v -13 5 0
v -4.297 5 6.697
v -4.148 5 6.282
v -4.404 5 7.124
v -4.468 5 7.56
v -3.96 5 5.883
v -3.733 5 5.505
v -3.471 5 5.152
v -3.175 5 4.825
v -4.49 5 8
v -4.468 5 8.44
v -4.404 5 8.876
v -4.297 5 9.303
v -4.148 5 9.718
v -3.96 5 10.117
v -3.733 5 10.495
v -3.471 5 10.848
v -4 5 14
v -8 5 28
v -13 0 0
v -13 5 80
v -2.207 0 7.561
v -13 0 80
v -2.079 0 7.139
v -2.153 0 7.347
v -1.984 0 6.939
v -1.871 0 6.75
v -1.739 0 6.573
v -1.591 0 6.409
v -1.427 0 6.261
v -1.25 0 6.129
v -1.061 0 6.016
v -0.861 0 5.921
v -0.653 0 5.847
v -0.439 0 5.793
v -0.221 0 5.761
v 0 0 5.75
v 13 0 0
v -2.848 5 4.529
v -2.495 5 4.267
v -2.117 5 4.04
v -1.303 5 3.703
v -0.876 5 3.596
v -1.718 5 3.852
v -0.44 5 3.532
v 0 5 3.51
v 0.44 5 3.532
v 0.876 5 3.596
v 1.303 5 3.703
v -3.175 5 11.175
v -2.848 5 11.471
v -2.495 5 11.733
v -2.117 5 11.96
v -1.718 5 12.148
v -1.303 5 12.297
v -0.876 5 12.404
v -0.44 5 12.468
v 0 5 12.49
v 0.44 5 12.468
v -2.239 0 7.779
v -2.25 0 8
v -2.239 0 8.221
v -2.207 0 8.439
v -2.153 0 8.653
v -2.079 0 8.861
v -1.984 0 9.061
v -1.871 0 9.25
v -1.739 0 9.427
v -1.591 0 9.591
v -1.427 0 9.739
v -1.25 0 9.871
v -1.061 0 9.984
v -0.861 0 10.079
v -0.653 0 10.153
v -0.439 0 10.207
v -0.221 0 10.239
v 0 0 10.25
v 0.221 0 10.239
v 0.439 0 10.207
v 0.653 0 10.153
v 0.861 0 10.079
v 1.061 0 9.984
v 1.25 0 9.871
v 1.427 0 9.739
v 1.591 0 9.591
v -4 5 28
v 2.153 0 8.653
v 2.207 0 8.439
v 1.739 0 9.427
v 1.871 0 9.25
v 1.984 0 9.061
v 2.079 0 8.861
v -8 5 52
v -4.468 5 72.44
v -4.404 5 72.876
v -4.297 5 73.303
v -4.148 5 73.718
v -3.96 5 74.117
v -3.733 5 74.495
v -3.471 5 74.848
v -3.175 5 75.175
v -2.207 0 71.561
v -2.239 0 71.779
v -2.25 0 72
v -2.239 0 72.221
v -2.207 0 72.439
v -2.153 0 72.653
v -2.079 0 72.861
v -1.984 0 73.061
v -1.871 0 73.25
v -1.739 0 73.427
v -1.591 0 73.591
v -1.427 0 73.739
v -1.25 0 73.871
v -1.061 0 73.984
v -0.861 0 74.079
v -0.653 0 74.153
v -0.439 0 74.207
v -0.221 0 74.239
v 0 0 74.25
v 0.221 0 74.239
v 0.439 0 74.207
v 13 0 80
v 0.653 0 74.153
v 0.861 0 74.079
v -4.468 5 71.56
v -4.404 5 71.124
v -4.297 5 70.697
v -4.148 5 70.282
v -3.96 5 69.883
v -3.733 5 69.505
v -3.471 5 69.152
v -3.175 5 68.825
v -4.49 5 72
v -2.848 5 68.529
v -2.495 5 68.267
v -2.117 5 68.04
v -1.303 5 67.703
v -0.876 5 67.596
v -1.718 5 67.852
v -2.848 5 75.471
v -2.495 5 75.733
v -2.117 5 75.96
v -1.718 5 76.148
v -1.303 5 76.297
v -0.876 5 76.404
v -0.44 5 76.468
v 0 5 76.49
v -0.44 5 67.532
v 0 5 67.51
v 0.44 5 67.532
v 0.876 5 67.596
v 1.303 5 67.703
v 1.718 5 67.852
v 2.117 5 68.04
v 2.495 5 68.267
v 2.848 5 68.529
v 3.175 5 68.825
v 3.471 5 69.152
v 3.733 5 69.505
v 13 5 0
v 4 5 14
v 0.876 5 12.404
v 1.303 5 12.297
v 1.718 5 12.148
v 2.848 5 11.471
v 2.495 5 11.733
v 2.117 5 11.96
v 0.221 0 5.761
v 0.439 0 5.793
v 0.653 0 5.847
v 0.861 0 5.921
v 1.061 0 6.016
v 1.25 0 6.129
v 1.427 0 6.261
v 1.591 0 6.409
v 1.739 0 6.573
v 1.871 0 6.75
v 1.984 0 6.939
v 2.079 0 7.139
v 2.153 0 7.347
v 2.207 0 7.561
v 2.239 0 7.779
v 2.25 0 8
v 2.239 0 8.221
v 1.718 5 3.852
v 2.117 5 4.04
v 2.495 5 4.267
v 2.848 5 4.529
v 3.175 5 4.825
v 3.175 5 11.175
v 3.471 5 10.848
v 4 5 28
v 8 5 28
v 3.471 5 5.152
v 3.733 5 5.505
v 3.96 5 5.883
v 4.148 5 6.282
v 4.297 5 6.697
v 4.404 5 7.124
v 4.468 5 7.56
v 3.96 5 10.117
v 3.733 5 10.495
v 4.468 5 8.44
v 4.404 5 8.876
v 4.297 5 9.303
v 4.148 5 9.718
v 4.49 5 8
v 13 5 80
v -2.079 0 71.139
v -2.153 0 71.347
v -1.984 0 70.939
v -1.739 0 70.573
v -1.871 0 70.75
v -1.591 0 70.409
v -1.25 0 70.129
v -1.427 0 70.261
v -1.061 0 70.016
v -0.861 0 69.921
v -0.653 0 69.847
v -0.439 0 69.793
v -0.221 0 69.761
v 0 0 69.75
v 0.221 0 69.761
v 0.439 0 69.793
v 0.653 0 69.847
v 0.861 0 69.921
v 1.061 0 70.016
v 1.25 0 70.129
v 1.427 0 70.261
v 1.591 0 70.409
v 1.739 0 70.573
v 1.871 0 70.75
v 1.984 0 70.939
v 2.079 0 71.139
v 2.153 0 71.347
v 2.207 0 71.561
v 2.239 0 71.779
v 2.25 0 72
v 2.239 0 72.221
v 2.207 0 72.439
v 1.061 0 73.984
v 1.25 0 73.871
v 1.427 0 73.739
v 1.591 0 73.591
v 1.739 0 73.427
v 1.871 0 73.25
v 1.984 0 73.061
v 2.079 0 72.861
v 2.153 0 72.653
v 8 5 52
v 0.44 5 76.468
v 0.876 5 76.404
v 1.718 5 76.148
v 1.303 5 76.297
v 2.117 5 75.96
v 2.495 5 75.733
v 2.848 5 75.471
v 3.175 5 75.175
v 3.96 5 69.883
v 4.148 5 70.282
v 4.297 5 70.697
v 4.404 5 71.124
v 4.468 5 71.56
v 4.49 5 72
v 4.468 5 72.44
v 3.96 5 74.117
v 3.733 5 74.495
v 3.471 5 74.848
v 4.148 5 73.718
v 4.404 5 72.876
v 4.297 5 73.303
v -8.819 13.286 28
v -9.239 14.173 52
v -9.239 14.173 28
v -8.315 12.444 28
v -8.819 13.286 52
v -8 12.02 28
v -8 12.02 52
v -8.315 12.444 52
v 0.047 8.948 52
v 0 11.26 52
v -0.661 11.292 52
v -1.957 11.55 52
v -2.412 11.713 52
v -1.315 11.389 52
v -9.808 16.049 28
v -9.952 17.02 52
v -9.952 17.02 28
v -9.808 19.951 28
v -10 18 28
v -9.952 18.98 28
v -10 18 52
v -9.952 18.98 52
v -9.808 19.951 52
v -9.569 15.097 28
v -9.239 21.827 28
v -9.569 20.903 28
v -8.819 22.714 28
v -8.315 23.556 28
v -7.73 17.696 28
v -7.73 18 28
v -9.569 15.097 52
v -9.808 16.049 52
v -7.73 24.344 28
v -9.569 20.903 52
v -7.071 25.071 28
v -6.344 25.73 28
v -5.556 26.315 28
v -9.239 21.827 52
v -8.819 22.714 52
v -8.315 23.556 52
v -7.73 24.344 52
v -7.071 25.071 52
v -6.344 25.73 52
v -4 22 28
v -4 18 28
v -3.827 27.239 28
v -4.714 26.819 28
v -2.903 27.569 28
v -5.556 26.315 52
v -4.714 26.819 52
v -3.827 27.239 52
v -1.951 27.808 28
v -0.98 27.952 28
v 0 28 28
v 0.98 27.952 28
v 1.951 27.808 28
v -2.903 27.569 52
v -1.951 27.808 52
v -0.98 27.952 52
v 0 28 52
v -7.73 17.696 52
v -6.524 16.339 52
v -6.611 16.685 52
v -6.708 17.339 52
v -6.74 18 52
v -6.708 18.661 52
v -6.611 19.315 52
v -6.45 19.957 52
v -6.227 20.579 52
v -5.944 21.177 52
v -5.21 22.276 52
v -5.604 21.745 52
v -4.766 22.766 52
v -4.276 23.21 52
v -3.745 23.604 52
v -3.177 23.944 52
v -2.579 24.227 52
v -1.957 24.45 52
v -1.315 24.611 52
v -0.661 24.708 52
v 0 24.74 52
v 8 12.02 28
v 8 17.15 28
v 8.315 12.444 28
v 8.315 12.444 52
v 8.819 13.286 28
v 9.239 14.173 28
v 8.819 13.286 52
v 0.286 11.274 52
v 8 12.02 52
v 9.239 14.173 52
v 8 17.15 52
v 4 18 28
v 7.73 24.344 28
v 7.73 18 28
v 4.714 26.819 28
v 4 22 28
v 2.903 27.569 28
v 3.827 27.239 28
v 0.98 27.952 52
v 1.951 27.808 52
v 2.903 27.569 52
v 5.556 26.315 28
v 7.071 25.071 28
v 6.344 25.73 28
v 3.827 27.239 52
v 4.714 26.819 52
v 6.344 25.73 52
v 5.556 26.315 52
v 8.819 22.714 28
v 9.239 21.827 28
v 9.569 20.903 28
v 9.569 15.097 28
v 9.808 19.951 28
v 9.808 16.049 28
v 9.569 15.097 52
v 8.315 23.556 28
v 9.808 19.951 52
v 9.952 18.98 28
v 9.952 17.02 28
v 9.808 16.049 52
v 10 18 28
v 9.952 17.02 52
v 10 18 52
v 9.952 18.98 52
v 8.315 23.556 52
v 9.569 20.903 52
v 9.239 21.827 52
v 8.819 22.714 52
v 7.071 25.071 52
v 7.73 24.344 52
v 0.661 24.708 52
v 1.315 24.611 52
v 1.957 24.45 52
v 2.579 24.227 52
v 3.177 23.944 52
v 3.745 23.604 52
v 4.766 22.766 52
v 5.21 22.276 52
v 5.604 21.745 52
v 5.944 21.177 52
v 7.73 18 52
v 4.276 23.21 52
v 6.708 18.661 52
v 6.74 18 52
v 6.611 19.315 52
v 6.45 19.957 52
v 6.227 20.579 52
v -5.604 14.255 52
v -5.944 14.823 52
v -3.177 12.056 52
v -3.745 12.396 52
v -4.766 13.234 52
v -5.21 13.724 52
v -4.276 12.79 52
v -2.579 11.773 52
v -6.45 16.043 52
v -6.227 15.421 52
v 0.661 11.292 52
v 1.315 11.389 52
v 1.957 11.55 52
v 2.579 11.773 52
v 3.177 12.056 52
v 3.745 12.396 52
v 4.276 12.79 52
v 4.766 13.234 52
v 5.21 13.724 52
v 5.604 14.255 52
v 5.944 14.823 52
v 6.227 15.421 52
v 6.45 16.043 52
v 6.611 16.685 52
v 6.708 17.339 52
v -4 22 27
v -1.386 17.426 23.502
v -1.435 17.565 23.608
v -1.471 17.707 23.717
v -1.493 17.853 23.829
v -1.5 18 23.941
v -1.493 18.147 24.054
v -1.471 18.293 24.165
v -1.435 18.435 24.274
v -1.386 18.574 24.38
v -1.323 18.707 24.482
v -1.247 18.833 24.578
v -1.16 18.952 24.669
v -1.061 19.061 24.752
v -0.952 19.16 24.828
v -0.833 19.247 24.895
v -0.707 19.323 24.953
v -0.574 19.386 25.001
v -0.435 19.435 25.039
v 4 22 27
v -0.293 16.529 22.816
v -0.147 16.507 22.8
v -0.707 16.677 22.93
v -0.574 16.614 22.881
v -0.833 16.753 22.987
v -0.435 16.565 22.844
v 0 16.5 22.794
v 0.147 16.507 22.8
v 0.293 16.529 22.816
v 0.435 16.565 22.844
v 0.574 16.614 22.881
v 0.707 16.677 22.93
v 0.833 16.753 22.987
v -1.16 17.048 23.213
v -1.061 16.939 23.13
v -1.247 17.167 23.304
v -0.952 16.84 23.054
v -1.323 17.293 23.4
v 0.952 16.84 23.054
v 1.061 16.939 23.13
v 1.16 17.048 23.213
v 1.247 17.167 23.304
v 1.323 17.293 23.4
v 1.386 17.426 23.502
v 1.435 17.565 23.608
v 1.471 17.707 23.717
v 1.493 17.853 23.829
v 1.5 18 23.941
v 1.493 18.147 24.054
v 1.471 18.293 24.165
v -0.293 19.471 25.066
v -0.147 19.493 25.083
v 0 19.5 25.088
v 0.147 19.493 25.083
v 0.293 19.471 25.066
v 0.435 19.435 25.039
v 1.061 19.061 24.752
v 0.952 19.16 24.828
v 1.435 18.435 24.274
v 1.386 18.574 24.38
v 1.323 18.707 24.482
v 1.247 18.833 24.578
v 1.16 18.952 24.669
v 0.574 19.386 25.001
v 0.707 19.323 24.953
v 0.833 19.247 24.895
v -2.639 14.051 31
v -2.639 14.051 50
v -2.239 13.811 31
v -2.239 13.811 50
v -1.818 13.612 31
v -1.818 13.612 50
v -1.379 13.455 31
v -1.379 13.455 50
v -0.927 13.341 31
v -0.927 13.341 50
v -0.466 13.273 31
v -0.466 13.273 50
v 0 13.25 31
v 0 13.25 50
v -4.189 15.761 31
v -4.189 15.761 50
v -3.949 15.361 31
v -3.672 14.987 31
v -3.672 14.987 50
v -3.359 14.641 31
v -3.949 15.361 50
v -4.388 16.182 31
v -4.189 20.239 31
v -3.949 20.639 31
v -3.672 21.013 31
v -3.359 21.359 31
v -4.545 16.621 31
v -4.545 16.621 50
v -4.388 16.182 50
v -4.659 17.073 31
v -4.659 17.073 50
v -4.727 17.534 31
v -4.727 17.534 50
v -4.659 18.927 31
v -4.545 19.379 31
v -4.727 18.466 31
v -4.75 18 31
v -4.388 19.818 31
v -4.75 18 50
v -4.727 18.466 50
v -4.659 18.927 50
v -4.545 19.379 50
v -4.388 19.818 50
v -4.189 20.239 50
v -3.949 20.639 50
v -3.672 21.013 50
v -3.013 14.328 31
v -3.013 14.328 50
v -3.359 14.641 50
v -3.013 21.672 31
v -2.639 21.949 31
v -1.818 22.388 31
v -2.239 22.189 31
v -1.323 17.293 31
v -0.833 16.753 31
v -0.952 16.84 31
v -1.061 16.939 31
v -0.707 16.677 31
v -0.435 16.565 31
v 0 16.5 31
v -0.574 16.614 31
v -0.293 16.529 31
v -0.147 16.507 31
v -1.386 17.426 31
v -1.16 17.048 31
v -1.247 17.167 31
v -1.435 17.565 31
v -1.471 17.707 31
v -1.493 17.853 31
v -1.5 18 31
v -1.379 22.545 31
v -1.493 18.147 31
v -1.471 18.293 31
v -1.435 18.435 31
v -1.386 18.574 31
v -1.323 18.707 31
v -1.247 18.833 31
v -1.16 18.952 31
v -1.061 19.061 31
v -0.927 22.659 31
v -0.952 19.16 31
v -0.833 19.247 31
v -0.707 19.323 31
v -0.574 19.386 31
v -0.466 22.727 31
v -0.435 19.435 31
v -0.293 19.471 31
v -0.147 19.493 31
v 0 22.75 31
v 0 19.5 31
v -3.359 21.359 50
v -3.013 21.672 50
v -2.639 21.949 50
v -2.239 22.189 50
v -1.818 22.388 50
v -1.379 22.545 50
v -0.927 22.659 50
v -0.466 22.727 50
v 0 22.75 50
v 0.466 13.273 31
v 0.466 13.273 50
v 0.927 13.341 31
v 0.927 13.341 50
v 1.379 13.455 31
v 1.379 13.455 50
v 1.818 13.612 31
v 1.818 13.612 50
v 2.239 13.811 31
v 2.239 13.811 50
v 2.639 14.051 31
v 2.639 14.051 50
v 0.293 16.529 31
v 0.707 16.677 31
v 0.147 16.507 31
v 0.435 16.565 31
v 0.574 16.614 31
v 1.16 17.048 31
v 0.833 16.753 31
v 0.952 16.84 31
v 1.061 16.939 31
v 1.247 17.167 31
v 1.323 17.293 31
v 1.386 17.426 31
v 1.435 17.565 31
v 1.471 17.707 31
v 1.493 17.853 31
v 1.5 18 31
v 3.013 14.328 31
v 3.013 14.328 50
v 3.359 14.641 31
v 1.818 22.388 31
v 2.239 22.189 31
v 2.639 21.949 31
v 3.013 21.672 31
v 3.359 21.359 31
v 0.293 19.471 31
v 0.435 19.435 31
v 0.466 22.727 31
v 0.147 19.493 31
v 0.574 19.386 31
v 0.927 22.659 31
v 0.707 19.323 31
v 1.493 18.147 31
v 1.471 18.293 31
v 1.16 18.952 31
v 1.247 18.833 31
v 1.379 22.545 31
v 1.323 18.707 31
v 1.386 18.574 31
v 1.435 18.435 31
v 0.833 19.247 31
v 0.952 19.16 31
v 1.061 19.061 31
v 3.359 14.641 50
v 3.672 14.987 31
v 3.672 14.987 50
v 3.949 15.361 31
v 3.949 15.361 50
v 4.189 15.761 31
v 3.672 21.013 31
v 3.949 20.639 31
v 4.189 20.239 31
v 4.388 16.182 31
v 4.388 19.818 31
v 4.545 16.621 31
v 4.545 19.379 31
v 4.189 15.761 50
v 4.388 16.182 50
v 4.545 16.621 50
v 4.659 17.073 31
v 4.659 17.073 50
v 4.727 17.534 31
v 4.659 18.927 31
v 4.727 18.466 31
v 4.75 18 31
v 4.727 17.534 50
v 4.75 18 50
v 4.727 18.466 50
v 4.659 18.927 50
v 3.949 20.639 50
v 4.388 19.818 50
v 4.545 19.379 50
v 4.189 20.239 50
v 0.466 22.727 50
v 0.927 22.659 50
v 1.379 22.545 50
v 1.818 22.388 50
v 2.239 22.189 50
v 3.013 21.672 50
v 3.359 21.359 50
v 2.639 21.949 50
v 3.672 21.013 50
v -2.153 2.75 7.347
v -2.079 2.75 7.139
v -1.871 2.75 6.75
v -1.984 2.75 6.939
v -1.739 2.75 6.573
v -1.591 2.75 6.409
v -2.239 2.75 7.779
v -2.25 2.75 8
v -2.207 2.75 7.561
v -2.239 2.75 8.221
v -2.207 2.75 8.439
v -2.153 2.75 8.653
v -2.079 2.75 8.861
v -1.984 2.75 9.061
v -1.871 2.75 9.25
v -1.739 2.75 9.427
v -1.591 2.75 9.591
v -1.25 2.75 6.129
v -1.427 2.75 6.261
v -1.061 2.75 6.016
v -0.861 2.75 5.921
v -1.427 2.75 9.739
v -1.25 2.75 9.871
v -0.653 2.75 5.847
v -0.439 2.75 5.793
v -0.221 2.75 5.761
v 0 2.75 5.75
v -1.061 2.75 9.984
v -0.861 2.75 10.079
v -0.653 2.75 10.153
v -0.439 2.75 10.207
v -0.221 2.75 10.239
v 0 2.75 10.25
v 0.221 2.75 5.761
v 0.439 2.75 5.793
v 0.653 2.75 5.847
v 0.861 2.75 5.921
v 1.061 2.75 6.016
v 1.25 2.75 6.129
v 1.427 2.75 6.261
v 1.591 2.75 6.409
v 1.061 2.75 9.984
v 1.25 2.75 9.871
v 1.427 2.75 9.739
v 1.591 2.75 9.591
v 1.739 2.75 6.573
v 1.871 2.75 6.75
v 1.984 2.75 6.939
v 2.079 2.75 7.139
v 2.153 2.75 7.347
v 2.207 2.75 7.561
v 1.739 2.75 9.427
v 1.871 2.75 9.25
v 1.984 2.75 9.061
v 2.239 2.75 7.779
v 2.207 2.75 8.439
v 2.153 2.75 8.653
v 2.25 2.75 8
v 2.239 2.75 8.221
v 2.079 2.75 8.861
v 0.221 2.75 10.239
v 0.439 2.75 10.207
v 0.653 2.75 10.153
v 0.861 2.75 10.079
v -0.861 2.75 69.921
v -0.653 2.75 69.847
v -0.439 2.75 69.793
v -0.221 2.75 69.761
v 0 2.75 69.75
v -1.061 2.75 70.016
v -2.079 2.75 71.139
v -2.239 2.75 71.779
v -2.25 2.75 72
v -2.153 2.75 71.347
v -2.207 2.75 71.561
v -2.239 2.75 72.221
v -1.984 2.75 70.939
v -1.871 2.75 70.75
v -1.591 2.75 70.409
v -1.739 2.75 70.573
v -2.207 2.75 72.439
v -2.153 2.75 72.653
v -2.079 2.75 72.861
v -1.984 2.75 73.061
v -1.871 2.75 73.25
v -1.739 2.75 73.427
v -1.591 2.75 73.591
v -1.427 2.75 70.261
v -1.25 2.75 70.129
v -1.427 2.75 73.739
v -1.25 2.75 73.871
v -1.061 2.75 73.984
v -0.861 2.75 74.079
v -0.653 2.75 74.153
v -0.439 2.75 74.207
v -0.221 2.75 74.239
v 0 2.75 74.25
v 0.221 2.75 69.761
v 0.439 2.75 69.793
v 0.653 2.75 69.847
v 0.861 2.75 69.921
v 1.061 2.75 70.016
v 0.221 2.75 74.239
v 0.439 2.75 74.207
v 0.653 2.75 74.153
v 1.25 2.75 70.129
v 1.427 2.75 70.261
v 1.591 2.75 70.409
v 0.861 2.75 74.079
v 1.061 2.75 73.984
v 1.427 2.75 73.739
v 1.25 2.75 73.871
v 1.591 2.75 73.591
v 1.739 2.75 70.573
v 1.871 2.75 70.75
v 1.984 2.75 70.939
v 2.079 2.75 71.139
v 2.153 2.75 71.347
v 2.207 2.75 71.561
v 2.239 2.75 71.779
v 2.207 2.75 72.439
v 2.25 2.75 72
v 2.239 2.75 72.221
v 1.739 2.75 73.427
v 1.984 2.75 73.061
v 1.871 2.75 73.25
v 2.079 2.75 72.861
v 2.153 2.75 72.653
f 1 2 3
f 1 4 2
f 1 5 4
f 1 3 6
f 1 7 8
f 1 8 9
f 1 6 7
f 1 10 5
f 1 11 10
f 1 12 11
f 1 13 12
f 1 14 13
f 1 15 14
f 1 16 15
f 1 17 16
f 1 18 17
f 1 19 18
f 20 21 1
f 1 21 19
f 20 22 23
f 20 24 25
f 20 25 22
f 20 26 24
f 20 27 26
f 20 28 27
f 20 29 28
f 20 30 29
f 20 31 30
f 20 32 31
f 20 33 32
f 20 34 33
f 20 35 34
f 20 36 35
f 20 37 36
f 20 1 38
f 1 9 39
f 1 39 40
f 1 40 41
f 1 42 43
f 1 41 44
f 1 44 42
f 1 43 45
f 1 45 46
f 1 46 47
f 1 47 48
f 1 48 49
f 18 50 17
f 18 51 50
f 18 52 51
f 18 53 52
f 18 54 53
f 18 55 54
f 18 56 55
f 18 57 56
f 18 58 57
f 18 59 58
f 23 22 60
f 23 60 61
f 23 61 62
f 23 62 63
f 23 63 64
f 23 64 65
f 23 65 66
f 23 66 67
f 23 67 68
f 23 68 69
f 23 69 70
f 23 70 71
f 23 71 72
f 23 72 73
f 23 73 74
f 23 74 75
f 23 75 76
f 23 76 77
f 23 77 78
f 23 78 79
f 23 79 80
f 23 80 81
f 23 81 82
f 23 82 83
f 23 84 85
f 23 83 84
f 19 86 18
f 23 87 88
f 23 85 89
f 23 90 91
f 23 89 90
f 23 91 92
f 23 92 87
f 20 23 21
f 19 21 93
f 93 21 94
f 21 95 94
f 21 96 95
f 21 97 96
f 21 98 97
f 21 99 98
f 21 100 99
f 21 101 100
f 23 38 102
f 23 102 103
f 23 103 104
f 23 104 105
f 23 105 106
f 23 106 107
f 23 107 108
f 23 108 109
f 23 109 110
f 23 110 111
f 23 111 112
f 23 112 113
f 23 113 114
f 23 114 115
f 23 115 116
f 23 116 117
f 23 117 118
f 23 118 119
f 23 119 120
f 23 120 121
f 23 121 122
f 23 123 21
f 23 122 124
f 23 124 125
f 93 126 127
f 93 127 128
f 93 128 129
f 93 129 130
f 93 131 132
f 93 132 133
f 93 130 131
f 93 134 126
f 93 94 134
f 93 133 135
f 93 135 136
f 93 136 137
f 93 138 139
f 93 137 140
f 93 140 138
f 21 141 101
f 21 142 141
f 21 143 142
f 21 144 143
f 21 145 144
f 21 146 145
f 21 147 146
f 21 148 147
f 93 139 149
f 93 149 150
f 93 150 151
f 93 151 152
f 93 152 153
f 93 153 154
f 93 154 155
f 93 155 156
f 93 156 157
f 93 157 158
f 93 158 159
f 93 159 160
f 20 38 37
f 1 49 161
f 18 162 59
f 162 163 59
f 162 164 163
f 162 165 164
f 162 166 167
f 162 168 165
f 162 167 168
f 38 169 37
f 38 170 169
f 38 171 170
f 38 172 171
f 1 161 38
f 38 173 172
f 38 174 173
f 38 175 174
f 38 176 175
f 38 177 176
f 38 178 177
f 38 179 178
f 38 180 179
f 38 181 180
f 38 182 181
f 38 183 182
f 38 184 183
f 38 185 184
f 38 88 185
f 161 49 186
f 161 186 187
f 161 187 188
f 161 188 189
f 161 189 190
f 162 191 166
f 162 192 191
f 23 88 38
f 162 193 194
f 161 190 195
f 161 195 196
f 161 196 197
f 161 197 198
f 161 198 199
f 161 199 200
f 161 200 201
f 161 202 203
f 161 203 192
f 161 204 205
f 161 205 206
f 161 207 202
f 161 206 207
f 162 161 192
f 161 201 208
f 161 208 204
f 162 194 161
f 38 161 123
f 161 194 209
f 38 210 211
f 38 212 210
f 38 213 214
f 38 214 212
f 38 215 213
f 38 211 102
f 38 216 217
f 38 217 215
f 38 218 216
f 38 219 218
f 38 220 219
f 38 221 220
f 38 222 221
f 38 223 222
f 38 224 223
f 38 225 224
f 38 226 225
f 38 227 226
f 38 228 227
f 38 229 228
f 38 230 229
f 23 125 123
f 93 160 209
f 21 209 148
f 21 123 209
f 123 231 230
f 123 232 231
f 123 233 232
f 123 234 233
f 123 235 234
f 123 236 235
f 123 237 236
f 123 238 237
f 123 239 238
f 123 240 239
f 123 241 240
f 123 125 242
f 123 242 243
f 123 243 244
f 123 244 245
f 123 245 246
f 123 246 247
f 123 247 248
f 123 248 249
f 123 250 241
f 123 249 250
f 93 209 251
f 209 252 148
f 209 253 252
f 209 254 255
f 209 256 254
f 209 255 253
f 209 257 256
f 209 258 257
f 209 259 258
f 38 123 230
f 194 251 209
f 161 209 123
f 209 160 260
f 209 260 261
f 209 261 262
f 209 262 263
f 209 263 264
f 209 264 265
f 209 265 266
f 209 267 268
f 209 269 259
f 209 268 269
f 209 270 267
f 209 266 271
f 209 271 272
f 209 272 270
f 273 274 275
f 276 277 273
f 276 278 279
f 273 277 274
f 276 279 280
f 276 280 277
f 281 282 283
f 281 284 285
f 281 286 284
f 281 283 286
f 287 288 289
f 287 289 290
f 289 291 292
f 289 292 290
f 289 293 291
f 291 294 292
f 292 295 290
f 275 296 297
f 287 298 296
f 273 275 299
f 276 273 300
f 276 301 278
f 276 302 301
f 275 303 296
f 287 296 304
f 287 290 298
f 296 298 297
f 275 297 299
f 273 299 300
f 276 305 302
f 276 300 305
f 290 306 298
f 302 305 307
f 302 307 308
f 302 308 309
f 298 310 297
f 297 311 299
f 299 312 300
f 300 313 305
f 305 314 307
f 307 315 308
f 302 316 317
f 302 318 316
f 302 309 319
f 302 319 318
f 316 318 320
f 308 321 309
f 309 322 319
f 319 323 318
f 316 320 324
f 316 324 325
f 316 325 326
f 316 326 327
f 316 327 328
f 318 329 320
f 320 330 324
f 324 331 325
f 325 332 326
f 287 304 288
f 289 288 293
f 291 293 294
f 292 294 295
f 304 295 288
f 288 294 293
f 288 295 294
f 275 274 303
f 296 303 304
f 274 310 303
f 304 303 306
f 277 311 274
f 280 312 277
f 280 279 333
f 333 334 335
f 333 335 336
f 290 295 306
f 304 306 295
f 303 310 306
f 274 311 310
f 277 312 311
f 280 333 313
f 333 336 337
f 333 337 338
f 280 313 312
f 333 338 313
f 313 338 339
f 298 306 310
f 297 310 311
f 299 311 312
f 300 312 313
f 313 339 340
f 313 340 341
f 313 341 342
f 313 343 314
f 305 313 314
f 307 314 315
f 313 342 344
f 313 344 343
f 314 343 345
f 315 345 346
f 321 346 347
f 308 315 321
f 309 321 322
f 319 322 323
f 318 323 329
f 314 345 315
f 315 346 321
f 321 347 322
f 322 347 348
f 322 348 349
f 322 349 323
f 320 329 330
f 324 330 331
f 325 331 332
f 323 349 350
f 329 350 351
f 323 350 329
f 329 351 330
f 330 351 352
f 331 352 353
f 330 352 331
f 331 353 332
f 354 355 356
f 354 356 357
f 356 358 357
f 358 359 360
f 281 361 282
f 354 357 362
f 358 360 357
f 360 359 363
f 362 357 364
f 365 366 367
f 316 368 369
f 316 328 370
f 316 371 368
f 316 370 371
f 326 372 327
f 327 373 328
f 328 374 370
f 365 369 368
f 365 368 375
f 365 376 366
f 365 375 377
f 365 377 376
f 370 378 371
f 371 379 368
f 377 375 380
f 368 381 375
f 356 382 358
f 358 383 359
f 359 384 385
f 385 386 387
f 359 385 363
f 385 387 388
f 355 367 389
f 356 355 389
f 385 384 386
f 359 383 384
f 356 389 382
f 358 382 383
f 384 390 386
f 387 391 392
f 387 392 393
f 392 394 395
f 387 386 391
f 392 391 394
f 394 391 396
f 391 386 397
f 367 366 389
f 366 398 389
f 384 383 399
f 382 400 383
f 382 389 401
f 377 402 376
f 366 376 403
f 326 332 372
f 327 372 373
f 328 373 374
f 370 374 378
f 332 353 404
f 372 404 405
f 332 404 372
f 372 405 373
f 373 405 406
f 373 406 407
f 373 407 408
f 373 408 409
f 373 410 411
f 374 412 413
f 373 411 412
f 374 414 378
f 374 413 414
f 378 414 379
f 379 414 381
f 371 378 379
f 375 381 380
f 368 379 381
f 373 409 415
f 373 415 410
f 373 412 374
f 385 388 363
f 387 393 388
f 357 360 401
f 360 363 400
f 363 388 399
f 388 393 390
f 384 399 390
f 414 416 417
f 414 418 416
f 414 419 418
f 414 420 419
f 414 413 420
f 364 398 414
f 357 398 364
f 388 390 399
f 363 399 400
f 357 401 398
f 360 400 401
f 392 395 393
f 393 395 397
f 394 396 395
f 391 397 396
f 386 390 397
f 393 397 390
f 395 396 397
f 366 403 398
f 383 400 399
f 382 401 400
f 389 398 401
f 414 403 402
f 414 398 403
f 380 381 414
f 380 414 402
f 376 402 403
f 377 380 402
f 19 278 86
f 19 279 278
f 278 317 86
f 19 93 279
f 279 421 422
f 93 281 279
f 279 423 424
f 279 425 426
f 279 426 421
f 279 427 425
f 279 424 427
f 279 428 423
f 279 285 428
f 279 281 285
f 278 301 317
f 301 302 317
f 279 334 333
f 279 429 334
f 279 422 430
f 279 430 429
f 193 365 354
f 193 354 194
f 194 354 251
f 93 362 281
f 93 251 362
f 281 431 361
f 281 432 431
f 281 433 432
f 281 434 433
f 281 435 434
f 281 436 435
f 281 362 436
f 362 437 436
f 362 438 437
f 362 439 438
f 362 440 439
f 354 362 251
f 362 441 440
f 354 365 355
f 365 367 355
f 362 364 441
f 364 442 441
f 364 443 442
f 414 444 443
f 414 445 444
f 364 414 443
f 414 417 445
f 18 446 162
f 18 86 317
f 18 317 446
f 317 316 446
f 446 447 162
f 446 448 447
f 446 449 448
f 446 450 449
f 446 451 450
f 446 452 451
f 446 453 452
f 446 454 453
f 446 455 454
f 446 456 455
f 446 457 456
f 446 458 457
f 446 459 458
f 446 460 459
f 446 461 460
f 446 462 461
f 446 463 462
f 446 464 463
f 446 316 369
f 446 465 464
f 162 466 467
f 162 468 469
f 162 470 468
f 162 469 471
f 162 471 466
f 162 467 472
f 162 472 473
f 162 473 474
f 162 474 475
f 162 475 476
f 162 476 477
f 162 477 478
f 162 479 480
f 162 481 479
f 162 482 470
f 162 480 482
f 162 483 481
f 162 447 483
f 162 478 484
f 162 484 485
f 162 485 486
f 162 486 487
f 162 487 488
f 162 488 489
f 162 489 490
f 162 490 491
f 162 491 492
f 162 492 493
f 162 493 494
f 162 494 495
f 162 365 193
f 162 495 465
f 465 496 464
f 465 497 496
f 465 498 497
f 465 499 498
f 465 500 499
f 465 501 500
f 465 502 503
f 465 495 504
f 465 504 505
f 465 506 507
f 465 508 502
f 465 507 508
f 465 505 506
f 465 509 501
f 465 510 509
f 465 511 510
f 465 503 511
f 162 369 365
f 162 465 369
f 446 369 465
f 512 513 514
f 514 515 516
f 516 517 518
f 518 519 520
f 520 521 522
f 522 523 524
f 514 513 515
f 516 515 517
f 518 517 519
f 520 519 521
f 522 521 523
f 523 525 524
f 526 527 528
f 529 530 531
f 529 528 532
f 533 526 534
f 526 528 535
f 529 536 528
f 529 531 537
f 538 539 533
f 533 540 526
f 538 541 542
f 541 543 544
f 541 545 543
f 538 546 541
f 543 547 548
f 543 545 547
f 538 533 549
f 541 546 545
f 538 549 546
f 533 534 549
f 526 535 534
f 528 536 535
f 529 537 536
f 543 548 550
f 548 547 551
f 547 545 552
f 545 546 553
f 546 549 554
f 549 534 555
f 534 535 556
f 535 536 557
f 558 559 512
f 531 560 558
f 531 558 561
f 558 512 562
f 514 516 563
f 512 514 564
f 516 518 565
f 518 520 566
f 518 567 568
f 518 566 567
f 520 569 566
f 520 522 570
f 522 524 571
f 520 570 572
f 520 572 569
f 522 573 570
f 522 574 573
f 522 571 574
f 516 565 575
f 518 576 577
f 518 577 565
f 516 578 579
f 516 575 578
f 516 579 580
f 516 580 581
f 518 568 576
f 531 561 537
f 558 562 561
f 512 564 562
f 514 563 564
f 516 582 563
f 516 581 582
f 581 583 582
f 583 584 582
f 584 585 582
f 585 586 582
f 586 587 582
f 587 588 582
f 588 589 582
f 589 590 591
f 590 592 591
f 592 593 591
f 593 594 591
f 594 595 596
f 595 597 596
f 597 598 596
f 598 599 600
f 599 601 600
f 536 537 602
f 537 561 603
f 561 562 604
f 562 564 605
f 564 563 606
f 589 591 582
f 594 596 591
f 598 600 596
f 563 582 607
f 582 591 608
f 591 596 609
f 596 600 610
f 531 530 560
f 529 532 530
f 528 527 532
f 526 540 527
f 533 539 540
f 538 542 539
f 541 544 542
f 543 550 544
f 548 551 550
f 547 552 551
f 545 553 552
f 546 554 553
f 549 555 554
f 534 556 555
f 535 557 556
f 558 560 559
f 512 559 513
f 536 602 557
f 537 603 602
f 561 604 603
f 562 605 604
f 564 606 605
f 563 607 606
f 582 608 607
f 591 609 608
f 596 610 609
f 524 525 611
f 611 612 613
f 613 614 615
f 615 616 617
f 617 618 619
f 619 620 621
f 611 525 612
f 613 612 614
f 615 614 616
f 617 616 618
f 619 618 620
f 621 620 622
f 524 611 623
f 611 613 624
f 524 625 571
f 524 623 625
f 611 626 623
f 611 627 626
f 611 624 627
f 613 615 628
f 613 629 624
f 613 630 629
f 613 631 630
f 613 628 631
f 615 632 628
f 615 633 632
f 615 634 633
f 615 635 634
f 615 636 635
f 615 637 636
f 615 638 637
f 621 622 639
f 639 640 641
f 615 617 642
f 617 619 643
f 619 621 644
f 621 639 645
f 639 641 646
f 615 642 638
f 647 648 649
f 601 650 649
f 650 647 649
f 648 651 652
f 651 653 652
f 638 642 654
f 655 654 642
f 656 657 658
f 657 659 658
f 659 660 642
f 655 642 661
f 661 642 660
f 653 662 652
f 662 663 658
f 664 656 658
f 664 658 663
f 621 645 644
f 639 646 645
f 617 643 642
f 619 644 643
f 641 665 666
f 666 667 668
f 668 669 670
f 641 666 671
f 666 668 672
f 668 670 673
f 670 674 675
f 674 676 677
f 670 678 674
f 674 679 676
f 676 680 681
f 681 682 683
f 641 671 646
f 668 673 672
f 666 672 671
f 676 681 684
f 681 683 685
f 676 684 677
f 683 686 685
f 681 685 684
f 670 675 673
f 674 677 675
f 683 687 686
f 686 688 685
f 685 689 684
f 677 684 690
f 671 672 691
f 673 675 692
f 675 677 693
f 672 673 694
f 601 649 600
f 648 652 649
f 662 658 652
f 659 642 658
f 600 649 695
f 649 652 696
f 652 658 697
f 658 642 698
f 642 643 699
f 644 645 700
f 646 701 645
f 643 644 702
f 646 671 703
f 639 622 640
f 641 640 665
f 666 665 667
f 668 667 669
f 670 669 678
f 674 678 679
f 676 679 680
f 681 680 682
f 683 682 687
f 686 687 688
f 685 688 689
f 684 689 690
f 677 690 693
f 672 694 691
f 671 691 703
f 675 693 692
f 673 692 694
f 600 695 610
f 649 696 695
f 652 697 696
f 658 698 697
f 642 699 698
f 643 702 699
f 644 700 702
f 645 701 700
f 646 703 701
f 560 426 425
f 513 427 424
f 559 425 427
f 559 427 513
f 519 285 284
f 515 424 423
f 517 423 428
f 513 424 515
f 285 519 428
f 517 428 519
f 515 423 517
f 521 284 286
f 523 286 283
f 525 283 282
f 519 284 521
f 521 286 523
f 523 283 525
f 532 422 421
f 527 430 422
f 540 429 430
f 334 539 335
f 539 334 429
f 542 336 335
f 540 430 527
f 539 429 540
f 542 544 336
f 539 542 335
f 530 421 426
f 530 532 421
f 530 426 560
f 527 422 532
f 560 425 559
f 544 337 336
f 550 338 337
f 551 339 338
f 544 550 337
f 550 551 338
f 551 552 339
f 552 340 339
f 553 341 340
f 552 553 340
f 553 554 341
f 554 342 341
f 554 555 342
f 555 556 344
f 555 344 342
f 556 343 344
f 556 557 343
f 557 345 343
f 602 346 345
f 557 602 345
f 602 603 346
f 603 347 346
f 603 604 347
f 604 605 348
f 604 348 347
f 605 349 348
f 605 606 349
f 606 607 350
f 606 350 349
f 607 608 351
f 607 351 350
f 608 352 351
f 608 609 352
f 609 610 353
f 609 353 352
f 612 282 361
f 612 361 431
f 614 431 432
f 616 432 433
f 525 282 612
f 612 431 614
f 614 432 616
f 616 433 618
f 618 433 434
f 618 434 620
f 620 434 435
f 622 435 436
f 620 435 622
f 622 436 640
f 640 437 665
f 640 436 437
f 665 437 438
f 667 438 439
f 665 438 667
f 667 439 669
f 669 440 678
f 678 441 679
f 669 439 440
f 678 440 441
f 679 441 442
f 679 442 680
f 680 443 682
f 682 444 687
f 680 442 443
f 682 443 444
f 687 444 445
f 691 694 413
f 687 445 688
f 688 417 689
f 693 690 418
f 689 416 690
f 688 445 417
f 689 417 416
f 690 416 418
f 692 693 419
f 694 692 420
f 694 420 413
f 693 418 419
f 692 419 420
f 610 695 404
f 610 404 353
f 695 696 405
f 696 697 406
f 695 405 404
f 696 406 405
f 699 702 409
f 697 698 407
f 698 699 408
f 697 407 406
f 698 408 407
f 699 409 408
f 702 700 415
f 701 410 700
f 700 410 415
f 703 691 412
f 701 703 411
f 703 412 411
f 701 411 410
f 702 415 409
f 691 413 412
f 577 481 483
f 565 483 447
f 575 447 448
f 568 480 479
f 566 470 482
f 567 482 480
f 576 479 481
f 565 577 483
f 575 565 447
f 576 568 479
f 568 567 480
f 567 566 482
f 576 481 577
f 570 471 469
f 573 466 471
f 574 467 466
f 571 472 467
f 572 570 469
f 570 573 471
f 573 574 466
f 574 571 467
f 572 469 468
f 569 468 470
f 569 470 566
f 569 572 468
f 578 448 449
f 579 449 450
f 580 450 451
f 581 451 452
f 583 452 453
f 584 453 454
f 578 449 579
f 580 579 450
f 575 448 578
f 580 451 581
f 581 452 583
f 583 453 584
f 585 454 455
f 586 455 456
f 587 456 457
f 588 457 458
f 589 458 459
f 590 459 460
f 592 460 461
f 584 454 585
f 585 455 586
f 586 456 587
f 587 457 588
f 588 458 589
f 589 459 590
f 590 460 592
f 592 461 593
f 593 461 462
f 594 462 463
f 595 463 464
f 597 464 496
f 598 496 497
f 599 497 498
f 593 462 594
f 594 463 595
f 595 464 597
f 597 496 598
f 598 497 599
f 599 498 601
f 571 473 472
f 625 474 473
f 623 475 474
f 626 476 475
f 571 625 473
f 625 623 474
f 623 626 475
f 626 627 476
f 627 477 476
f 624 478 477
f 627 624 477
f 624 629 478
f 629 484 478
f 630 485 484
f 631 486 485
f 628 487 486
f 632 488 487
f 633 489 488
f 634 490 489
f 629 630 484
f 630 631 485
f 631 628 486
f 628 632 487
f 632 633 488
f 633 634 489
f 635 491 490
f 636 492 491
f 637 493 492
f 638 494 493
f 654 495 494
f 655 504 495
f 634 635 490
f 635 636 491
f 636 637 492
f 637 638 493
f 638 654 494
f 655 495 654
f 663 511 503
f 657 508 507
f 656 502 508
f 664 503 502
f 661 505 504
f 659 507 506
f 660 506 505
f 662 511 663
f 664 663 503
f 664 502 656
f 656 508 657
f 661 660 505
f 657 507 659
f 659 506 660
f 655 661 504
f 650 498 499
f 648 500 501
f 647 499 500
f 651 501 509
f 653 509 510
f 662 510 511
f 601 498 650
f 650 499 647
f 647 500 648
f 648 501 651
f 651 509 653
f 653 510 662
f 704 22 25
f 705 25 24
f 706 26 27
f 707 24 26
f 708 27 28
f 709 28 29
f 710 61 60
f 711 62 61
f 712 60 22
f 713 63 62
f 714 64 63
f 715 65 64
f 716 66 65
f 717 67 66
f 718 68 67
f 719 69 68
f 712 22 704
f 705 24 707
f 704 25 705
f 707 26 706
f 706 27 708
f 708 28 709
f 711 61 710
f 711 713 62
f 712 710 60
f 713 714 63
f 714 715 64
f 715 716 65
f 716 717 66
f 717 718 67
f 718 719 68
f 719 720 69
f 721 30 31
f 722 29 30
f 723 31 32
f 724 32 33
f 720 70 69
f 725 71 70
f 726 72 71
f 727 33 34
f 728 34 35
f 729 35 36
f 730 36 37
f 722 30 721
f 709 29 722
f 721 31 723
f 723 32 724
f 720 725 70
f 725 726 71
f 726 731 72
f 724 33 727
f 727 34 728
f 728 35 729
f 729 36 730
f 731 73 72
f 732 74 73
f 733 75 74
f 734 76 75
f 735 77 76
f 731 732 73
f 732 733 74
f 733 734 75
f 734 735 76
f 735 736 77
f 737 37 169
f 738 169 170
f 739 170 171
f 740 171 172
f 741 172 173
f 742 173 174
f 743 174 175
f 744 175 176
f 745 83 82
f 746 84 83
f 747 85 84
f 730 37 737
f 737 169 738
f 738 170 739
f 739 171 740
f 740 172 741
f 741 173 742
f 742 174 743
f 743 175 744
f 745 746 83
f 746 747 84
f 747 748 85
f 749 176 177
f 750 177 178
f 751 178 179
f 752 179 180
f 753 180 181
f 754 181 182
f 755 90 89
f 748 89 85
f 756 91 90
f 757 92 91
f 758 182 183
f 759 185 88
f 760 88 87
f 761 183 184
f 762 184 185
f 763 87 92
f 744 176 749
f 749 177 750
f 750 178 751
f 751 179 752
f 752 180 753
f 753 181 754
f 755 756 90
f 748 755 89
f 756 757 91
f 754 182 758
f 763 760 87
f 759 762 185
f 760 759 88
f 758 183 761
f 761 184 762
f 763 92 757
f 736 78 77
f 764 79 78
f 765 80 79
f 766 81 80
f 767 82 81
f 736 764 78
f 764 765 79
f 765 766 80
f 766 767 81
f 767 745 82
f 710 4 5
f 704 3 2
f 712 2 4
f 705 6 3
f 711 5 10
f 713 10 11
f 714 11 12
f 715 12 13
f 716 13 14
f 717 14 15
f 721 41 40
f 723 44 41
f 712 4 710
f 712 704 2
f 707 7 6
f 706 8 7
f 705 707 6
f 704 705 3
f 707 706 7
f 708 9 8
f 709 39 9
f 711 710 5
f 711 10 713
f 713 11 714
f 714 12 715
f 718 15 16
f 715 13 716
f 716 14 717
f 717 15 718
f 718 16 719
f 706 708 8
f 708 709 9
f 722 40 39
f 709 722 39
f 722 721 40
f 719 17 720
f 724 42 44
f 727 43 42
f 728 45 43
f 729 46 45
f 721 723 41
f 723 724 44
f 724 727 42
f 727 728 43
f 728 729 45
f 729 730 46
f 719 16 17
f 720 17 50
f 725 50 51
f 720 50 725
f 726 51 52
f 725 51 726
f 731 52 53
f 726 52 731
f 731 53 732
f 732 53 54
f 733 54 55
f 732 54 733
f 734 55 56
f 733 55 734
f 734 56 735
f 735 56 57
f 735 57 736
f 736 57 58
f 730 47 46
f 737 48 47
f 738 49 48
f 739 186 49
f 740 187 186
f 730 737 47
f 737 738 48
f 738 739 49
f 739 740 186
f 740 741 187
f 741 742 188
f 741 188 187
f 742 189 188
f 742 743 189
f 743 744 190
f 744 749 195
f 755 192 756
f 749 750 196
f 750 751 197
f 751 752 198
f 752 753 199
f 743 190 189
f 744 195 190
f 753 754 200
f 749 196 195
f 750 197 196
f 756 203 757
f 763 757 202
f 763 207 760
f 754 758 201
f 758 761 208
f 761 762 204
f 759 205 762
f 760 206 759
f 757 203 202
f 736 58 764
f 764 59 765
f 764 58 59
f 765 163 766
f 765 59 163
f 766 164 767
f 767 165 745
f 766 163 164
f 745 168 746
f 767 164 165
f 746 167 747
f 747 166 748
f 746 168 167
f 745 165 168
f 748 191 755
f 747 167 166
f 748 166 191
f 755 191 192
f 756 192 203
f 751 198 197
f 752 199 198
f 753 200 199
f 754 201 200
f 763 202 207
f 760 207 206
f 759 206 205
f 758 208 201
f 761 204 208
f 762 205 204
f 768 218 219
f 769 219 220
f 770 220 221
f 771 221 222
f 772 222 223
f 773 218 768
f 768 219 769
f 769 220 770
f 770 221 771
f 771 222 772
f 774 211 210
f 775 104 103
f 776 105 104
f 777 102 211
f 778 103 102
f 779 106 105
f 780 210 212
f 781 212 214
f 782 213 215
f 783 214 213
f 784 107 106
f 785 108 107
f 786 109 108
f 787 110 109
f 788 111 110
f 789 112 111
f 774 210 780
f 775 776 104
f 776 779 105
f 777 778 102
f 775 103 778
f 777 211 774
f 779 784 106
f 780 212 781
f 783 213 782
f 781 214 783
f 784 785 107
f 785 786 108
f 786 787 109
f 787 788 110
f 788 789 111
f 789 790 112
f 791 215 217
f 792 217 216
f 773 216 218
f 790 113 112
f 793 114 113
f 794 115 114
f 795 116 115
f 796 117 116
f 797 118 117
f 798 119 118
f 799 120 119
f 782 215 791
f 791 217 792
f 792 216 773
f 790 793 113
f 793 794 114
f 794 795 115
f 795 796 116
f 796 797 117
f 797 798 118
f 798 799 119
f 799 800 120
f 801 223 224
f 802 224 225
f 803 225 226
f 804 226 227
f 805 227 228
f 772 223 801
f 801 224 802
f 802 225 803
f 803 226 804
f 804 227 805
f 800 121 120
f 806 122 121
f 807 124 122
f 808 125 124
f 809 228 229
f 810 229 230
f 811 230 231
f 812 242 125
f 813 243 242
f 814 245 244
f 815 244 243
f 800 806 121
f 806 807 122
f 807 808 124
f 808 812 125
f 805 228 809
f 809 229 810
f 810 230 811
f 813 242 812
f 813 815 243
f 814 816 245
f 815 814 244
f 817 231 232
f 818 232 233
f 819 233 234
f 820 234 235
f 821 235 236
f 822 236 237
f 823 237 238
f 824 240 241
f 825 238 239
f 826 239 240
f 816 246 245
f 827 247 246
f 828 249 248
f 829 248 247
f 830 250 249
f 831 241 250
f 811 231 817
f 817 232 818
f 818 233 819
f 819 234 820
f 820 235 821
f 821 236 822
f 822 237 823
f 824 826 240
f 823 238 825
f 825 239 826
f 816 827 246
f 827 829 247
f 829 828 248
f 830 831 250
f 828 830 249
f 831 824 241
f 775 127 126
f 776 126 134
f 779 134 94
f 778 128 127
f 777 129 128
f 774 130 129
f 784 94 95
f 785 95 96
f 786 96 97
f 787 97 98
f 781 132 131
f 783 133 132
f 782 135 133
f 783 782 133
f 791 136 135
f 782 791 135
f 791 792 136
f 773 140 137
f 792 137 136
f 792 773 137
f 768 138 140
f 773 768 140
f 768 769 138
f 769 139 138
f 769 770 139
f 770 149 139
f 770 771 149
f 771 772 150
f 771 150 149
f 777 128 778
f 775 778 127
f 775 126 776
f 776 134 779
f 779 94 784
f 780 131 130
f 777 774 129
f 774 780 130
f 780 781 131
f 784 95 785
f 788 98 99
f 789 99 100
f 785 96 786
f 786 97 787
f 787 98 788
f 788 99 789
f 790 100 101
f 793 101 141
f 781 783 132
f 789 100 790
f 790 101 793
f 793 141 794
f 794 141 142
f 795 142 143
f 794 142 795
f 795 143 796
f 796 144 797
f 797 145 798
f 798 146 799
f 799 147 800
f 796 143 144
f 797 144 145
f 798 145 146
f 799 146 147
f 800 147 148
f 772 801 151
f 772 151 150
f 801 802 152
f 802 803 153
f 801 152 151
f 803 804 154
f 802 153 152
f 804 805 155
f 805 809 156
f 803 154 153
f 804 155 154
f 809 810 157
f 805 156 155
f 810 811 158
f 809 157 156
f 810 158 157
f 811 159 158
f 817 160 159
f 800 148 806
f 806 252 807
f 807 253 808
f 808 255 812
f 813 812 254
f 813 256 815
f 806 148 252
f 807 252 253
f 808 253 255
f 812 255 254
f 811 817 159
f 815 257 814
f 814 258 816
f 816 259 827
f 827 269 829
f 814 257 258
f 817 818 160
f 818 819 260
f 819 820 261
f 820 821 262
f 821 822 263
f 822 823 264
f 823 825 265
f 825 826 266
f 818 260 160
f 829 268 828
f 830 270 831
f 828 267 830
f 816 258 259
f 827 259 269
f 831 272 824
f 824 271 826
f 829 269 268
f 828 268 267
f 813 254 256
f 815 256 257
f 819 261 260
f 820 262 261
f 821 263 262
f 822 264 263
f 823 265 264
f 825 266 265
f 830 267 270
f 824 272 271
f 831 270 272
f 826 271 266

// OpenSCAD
// Stair-gate hinge socket (female part, wall mounted).
// The gate's L-shaped pin drops vertically into the bore; the pin tip rests on the bore floor.
// Axes: X along the wall, Y away from the wall (wall at Y=0), Z up.
// Print upright (as modelled, plate's bottom edge on the bed) so the arm's layers carry the load.

/* [Pin] */
bore_d      = 9.5;   // pin collar is ~8 mm; 9.5 leaves clearance for easy rotation
bore_depth  = 21;    // how deep the pin goes in
floor_t     = 3;     // material under the pin tip
drain_d     = 3;     // small hole so dust/water falls through

/* [Arm] */
offset      = 18;    // bore centre distance from the wall
boss_d      = 20;    // outer diameter of the round socket
web_w       = 16;    // width of the arm joining boss to plate

/* [Wall plate] */
plate_w     = 26;
plate_h     = 80;
plate_t     = 5;
screw_d     = 4.5;   // for 4 mm wood/plug screws
head_d      = 9;     // countersink diameter
screw_z     = [8, 72];

$fn = 64;

boss_h = bore_depth + floor_t;
boss_z = (plate_h - boss_h) / 2;

difference() {
    union() {
        translate([-plate_w/2, 0, 0]) cube([plate_w, plate_t, plate_h]);
        translate([0, offset, boss_z]) cylinder(d = boss_d, h = boss_h);
        translate([-web_w/2, 0, boss_z]) cube([web_w, offset, boss_h]);
        // 45-degree gusset under the arm
        hull() {
            translate([-4, 0, boss_z - 14]) cube([8, plate_t, 14]);
            translate([-4, 0, boss_z - 1]) cube([8, offset + 4, 1]);
        }
    }
    // bore + lead-in chamfer
    translate([0, offset, boss_z + floor_t]) cylinder(d = bore_d, h = boss_h);
    translate([0, offset, boss_z + boss_h - 2]) cylinder(d1 = bore_d, d2 = bore_d + 4, h = 2.01);
    // drain
    translate([0, offset, -1]) cylinder(d = drain_d, h = plate_h);
    // countersunk screw holes
    for (z = screw_z) {
        translate([0, -1, z]) rotate([-90, 0, 0]) cylinder(d = screw_d, h = plate_t + 2);
        translate([0, plate_t - (head_d - screw_d)/2, z]) rotate([-90, 0, 0])
            cylinder(d1 = screw_d, d2 = head_d, h = (head_d - screw_d)/2 + 0.01);
    }
}
